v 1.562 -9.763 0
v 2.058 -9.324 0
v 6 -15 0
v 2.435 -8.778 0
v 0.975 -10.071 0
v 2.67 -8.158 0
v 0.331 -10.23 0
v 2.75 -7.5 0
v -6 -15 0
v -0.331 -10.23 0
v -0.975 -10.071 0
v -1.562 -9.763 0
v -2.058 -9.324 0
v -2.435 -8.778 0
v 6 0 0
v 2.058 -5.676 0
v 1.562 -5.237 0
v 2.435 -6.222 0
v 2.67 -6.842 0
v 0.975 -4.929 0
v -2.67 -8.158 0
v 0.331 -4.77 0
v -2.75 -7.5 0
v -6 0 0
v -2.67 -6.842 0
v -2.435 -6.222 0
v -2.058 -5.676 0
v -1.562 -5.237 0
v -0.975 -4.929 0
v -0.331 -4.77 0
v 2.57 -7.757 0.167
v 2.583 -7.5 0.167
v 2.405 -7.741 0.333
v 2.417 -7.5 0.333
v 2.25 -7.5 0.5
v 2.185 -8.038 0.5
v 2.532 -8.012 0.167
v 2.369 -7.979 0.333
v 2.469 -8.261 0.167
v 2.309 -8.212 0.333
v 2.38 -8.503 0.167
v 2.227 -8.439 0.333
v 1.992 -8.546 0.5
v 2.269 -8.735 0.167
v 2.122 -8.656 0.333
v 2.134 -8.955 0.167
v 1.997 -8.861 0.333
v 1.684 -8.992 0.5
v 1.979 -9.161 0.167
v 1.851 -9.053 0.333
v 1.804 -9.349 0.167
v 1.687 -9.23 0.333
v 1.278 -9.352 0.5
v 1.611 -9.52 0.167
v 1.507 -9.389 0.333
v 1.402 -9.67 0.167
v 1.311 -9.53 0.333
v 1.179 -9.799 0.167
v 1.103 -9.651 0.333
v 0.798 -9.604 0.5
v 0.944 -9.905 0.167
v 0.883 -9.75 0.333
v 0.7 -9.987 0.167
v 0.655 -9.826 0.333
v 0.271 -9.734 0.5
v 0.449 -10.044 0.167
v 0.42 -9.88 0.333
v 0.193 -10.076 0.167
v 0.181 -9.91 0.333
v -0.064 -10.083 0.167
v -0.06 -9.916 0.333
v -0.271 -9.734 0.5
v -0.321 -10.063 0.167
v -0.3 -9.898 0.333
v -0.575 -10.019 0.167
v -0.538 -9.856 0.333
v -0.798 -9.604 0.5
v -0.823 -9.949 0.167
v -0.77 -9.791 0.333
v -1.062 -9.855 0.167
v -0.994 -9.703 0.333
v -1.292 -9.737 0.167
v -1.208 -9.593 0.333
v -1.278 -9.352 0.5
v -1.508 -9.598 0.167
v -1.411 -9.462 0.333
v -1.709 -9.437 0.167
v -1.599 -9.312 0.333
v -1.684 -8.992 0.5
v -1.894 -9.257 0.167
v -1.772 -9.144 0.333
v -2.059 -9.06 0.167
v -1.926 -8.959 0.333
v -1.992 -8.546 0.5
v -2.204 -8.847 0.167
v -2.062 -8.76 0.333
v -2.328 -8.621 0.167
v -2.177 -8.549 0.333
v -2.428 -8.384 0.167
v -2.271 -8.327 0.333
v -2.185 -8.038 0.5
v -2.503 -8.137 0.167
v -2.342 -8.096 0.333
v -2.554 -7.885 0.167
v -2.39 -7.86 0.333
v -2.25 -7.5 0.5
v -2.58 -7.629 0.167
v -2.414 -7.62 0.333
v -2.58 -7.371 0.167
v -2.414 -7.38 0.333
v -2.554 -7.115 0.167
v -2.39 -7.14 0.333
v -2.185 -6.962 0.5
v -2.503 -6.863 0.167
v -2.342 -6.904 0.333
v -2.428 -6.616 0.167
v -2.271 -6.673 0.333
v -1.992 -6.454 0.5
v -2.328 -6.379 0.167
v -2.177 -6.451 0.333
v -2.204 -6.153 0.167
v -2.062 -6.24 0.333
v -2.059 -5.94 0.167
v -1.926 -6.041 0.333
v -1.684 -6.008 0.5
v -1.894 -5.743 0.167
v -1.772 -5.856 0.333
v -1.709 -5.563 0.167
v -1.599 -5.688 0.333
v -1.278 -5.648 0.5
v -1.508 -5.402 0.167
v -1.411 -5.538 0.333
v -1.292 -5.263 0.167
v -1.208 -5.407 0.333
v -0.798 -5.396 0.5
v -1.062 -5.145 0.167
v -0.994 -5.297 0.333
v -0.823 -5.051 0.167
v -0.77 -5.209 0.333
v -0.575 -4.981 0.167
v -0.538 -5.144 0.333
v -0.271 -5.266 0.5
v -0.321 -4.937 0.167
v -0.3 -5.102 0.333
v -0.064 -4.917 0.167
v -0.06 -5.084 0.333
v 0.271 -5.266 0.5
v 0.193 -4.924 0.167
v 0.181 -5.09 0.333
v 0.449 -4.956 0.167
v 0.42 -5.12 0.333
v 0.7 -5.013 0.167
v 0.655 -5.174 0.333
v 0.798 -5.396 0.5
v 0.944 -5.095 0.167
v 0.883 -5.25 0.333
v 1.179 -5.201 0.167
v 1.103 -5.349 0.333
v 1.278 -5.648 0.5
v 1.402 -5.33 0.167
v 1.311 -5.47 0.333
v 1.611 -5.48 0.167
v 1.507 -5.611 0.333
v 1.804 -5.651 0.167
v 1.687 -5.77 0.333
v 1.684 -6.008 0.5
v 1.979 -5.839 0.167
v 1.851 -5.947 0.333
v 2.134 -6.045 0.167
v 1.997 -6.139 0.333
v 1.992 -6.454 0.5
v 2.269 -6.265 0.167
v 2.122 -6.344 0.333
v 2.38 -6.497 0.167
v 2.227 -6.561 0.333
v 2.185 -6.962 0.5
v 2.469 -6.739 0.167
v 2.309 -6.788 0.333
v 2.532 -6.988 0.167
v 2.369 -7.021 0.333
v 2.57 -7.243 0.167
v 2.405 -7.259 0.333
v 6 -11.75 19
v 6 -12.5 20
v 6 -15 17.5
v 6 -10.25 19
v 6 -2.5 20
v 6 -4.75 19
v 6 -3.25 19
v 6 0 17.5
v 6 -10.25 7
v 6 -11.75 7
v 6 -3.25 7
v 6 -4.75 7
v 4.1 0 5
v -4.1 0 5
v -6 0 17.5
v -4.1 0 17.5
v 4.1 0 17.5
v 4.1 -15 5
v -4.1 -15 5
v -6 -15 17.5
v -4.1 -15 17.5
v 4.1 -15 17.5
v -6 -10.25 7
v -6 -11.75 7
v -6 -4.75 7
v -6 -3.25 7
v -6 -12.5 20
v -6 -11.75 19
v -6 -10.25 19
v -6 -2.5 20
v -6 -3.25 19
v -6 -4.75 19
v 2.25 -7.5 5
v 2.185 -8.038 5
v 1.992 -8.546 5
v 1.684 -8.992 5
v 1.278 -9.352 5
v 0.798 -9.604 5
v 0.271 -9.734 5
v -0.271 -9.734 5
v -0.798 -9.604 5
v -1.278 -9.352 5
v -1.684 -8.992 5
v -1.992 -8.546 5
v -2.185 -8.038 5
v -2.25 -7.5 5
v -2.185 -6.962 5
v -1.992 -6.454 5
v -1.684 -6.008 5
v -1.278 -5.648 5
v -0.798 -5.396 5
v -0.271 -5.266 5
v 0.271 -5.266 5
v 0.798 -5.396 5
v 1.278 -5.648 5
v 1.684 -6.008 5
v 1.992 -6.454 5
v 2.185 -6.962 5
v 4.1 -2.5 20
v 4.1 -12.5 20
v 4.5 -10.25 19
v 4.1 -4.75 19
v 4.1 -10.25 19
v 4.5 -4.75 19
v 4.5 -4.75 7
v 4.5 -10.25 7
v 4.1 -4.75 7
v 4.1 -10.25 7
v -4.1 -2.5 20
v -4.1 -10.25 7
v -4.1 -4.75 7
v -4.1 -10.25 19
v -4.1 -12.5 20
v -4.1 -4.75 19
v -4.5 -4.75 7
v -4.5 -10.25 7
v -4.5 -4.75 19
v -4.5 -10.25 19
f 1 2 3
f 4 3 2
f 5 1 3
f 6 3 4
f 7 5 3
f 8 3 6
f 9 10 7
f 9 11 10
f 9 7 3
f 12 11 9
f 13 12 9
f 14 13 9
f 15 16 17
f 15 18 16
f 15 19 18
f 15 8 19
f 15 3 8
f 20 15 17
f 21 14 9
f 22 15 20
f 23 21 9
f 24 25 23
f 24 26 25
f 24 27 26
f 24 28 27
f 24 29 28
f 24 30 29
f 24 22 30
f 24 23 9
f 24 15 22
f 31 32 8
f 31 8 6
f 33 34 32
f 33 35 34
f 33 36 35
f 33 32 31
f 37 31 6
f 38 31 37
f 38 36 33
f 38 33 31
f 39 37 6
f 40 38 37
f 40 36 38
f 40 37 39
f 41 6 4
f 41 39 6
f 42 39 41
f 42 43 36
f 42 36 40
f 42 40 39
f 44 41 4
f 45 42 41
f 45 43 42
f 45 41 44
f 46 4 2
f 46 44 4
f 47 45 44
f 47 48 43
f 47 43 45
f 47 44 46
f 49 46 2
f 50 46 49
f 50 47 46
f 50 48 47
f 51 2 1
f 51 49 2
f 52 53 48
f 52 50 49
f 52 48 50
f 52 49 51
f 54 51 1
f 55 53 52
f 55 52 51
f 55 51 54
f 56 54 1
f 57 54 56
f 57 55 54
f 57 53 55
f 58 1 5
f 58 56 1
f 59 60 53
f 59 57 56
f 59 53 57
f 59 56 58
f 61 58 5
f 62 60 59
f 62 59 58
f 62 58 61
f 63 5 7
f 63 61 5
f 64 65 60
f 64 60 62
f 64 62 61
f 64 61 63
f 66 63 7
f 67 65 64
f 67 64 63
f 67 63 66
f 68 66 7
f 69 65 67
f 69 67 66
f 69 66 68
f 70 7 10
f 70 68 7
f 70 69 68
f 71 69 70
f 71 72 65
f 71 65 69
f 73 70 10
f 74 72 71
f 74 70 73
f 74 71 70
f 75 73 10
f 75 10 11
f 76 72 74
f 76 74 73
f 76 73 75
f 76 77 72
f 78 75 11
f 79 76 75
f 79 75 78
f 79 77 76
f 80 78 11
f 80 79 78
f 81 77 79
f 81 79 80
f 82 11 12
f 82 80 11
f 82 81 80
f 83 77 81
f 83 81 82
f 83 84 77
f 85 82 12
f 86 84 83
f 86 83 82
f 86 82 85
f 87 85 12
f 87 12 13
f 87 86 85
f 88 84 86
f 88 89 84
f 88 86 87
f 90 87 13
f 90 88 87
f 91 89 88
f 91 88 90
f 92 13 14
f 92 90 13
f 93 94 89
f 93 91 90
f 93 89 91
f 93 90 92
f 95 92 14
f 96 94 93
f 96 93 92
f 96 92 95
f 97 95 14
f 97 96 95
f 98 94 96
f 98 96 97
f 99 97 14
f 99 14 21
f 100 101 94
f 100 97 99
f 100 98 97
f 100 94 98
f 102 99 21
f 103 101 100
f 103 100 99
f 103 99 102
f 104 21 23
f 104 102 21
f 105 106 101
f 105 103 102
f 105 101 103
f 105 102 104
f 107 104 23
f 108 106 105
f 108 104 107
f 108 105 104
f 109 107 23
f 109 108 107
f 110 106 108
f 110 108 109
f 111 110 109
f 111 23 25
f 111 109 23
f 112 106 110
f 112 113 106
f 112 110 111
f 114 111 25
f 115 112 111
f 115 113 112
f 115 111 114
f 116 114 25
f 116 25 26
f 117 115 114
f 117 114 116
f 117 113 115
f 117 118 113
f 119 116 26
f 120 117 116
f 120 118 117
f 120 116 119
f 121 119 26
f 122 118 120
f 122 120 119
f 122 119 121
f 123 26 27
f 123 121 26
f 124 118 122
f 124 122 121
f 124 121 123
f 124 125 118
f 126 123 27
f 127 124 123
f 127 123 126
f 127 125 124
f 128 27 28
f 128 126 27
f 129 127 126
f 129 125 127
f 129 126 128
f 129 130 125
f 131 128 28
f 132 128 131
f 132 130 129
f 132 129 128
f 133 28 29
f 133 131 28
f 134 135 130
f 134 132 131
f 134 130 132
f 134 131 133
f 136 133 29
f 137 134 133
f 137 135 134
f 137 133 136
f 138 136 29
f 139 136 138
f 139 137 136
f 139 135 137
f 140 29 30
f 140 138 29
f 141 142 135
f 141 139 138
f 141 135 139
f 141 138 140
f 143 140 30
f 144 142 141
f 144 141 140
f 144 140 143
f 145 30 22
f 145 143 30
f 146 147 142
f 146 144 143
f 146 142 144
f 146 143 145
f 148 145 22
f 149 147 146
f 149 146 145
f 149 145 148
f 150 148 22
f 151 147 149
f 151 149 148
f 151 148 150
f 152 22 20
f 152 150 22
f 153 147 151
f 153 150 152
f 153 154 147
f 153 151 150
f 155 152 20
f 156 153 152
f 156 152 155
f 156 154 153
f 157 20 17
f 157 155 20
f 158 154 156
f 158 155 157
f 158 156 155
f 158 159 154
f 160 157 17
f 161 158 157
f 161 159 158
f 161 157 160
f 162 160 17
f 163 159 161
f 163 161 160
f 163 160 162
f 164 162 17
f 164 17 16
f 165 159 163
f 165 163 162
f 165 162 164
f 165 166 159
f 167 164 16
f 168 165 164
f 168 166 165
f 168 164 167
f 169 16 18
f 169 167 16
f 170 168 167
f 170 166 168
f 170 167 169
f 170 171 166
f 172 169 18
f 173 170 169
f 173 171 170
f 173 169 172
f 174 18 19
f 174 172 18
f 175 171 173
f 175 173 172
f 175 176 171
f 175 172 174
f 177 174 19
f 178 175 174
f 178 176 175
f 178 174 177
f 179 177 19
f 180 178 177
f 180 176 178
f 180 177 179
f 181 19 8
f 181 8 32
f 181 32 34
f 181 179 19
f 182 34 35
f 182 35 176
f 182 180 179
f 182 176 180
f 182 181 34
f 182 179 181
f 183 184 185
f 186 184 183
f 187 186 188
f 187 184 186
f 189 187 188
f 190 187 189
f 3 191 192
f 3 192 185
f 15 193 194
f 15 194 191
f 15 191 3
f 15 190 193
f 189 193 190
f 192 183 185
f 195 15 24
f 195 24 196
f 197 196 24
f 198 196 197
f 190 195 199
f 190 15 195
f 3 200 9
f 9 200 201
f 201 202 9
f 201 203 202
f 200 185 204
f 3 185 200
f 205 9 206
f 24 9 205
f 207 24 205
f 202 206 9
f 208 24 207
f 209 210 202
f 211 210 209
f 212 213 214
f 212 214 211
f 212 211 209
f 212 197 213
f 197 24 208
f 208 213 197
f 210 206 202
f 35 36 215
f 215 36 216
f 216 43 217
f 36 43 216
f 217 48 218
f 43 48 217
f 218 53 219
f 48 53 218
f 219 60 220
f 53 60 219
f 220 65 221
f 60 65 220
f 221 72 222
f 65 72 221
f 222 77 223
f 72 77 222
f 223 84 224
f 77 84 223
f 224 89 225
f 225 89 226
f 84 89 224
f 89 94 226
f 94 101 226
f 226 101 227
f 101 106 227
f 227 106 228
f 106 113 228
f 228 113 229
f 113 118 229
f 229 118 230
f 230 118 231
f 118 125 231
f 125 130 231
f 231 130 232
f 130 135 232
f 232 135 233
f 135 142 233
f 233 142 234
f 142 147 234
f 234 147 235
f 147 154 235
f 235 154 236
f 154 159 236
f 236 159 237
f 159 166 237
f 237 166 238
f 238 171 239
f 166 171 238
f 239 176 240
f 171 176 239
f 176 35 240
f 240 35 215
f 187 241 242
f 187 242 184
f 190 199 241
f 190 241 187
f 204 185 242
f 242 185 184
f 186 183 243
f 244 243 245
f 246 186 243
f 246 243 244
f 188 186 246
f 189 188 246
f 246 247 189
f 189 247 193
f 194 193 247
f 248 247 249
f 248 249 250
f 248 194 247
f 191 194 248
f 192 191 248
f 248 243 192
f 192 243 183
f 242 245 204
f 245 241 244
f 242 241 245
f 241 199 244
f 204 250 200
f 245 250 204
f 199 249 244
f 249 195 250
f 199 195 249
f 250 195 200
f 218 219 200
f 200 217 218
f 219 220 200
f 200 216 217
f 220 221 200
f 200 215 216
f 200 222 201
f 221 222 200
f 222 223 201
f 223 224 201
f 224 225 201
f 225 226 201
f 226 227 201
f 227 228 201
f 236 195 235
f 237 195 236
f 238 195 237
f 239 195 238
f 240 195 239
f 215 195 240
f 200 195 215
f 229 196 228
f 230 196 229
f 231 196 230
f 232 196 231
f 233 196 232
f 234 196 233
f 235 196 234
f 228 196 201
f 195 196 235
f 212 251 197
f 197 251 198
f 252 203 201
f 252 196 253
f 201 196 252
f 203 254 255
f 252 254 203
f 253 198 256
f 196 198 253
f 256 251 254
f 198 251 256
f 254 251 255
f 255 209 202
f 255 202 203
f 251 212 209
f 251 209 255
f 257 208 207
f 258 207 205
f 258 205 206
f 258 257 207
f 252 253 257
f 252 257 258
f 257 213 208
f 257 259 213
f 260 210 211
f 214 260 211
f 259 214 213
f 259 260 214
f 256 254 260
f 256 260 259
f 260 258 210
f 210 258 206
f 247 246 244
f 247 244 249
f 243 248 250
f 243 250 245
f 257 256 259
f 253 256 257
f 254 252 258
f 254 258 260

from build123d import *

# Parameters (mm, degrees)
PAD_DEPTH       = 15
SKETCH001_W     = 12
SKETCH001_H     = 5.5
POCKET_DEPTH    = 12.001
SKETCH002_R     = 2.25
POCKET001_DEPTH = 20.001
CHAMFER_SIZE    = 1.5
CHAMFER001_SIZE = 2.5
CHAMFER002_SIZE = 0.5


with BuildPart() as part:
    # Sketch → Pad (new body)
    with BuildSketch(Plane.XZ):
        Polygon((-6, 20), (-4.1, 20), (-4.1, 5), (4.1, 5), (4.1, 20), (6, 20), (6, 0), (-6, 0), align=None)
    extrude(amount=PAD_DEPTH)

    # Sketch001 (on Face2 of Pad) → Pocket (cut, through all)
    with BuildSketch(Plane(origin=(6, 0, 0), x_dir=(0, 0, 1), z_dir=(1, 0, 0))):
        with Locations((13, 7.5)):
            Rectangle(SKETCH001_W, SKETCH001_H)
    extrude(amount=-POCKET_DEPTH, mode=Mode.SUBTRACT)

    # Sketch002 (on Face11 of Pocket) → Pocket001 (cut, through all)
    with BuildSketch(Plane(origin=(0, 0, 0), x_dir=(1, 0, 0), z_dir=(0, 0, -1))):
        with Locations((0, 7.5)):
            Circle(SKETCH002_R)
    extrude(amount=-POCKET001_DEPTH, mode=Mode.SUBTRACT)

    # Chamfer
    chamfer_edges = [part.edges().sort_by_distance(p)[0] for p in [
        (6, -4.75, 13),
        (6, -10.25, 13),
        (-6, -4.75, 13),
        (-6, -10.25, 13),
    ]]
    chamfer(chamfer_edges, length=CHAMFER_SIZE)

    # Chamfer001
    chamfer001_edges = [part.edges().sort_by_distance(p)[0] for p in [
        (-5.05, -15, 20),
        (5.05, -15, 20),
        (5.05, 0, 20),
        (-5.05, 0, 20),
    ]]
    chamfer(chamfer001_edges, length=CHAMFER001_SIZE)

    # Chamfer002
    chamfer002_edges = [part.edges().sort_by_distance(p)[0] for p in [
        (-2.25, -7.5, 0),
    ]]
    chamfer(chamfer002_edges, length=CHAMFER002_SIZE)


solid = part.part
